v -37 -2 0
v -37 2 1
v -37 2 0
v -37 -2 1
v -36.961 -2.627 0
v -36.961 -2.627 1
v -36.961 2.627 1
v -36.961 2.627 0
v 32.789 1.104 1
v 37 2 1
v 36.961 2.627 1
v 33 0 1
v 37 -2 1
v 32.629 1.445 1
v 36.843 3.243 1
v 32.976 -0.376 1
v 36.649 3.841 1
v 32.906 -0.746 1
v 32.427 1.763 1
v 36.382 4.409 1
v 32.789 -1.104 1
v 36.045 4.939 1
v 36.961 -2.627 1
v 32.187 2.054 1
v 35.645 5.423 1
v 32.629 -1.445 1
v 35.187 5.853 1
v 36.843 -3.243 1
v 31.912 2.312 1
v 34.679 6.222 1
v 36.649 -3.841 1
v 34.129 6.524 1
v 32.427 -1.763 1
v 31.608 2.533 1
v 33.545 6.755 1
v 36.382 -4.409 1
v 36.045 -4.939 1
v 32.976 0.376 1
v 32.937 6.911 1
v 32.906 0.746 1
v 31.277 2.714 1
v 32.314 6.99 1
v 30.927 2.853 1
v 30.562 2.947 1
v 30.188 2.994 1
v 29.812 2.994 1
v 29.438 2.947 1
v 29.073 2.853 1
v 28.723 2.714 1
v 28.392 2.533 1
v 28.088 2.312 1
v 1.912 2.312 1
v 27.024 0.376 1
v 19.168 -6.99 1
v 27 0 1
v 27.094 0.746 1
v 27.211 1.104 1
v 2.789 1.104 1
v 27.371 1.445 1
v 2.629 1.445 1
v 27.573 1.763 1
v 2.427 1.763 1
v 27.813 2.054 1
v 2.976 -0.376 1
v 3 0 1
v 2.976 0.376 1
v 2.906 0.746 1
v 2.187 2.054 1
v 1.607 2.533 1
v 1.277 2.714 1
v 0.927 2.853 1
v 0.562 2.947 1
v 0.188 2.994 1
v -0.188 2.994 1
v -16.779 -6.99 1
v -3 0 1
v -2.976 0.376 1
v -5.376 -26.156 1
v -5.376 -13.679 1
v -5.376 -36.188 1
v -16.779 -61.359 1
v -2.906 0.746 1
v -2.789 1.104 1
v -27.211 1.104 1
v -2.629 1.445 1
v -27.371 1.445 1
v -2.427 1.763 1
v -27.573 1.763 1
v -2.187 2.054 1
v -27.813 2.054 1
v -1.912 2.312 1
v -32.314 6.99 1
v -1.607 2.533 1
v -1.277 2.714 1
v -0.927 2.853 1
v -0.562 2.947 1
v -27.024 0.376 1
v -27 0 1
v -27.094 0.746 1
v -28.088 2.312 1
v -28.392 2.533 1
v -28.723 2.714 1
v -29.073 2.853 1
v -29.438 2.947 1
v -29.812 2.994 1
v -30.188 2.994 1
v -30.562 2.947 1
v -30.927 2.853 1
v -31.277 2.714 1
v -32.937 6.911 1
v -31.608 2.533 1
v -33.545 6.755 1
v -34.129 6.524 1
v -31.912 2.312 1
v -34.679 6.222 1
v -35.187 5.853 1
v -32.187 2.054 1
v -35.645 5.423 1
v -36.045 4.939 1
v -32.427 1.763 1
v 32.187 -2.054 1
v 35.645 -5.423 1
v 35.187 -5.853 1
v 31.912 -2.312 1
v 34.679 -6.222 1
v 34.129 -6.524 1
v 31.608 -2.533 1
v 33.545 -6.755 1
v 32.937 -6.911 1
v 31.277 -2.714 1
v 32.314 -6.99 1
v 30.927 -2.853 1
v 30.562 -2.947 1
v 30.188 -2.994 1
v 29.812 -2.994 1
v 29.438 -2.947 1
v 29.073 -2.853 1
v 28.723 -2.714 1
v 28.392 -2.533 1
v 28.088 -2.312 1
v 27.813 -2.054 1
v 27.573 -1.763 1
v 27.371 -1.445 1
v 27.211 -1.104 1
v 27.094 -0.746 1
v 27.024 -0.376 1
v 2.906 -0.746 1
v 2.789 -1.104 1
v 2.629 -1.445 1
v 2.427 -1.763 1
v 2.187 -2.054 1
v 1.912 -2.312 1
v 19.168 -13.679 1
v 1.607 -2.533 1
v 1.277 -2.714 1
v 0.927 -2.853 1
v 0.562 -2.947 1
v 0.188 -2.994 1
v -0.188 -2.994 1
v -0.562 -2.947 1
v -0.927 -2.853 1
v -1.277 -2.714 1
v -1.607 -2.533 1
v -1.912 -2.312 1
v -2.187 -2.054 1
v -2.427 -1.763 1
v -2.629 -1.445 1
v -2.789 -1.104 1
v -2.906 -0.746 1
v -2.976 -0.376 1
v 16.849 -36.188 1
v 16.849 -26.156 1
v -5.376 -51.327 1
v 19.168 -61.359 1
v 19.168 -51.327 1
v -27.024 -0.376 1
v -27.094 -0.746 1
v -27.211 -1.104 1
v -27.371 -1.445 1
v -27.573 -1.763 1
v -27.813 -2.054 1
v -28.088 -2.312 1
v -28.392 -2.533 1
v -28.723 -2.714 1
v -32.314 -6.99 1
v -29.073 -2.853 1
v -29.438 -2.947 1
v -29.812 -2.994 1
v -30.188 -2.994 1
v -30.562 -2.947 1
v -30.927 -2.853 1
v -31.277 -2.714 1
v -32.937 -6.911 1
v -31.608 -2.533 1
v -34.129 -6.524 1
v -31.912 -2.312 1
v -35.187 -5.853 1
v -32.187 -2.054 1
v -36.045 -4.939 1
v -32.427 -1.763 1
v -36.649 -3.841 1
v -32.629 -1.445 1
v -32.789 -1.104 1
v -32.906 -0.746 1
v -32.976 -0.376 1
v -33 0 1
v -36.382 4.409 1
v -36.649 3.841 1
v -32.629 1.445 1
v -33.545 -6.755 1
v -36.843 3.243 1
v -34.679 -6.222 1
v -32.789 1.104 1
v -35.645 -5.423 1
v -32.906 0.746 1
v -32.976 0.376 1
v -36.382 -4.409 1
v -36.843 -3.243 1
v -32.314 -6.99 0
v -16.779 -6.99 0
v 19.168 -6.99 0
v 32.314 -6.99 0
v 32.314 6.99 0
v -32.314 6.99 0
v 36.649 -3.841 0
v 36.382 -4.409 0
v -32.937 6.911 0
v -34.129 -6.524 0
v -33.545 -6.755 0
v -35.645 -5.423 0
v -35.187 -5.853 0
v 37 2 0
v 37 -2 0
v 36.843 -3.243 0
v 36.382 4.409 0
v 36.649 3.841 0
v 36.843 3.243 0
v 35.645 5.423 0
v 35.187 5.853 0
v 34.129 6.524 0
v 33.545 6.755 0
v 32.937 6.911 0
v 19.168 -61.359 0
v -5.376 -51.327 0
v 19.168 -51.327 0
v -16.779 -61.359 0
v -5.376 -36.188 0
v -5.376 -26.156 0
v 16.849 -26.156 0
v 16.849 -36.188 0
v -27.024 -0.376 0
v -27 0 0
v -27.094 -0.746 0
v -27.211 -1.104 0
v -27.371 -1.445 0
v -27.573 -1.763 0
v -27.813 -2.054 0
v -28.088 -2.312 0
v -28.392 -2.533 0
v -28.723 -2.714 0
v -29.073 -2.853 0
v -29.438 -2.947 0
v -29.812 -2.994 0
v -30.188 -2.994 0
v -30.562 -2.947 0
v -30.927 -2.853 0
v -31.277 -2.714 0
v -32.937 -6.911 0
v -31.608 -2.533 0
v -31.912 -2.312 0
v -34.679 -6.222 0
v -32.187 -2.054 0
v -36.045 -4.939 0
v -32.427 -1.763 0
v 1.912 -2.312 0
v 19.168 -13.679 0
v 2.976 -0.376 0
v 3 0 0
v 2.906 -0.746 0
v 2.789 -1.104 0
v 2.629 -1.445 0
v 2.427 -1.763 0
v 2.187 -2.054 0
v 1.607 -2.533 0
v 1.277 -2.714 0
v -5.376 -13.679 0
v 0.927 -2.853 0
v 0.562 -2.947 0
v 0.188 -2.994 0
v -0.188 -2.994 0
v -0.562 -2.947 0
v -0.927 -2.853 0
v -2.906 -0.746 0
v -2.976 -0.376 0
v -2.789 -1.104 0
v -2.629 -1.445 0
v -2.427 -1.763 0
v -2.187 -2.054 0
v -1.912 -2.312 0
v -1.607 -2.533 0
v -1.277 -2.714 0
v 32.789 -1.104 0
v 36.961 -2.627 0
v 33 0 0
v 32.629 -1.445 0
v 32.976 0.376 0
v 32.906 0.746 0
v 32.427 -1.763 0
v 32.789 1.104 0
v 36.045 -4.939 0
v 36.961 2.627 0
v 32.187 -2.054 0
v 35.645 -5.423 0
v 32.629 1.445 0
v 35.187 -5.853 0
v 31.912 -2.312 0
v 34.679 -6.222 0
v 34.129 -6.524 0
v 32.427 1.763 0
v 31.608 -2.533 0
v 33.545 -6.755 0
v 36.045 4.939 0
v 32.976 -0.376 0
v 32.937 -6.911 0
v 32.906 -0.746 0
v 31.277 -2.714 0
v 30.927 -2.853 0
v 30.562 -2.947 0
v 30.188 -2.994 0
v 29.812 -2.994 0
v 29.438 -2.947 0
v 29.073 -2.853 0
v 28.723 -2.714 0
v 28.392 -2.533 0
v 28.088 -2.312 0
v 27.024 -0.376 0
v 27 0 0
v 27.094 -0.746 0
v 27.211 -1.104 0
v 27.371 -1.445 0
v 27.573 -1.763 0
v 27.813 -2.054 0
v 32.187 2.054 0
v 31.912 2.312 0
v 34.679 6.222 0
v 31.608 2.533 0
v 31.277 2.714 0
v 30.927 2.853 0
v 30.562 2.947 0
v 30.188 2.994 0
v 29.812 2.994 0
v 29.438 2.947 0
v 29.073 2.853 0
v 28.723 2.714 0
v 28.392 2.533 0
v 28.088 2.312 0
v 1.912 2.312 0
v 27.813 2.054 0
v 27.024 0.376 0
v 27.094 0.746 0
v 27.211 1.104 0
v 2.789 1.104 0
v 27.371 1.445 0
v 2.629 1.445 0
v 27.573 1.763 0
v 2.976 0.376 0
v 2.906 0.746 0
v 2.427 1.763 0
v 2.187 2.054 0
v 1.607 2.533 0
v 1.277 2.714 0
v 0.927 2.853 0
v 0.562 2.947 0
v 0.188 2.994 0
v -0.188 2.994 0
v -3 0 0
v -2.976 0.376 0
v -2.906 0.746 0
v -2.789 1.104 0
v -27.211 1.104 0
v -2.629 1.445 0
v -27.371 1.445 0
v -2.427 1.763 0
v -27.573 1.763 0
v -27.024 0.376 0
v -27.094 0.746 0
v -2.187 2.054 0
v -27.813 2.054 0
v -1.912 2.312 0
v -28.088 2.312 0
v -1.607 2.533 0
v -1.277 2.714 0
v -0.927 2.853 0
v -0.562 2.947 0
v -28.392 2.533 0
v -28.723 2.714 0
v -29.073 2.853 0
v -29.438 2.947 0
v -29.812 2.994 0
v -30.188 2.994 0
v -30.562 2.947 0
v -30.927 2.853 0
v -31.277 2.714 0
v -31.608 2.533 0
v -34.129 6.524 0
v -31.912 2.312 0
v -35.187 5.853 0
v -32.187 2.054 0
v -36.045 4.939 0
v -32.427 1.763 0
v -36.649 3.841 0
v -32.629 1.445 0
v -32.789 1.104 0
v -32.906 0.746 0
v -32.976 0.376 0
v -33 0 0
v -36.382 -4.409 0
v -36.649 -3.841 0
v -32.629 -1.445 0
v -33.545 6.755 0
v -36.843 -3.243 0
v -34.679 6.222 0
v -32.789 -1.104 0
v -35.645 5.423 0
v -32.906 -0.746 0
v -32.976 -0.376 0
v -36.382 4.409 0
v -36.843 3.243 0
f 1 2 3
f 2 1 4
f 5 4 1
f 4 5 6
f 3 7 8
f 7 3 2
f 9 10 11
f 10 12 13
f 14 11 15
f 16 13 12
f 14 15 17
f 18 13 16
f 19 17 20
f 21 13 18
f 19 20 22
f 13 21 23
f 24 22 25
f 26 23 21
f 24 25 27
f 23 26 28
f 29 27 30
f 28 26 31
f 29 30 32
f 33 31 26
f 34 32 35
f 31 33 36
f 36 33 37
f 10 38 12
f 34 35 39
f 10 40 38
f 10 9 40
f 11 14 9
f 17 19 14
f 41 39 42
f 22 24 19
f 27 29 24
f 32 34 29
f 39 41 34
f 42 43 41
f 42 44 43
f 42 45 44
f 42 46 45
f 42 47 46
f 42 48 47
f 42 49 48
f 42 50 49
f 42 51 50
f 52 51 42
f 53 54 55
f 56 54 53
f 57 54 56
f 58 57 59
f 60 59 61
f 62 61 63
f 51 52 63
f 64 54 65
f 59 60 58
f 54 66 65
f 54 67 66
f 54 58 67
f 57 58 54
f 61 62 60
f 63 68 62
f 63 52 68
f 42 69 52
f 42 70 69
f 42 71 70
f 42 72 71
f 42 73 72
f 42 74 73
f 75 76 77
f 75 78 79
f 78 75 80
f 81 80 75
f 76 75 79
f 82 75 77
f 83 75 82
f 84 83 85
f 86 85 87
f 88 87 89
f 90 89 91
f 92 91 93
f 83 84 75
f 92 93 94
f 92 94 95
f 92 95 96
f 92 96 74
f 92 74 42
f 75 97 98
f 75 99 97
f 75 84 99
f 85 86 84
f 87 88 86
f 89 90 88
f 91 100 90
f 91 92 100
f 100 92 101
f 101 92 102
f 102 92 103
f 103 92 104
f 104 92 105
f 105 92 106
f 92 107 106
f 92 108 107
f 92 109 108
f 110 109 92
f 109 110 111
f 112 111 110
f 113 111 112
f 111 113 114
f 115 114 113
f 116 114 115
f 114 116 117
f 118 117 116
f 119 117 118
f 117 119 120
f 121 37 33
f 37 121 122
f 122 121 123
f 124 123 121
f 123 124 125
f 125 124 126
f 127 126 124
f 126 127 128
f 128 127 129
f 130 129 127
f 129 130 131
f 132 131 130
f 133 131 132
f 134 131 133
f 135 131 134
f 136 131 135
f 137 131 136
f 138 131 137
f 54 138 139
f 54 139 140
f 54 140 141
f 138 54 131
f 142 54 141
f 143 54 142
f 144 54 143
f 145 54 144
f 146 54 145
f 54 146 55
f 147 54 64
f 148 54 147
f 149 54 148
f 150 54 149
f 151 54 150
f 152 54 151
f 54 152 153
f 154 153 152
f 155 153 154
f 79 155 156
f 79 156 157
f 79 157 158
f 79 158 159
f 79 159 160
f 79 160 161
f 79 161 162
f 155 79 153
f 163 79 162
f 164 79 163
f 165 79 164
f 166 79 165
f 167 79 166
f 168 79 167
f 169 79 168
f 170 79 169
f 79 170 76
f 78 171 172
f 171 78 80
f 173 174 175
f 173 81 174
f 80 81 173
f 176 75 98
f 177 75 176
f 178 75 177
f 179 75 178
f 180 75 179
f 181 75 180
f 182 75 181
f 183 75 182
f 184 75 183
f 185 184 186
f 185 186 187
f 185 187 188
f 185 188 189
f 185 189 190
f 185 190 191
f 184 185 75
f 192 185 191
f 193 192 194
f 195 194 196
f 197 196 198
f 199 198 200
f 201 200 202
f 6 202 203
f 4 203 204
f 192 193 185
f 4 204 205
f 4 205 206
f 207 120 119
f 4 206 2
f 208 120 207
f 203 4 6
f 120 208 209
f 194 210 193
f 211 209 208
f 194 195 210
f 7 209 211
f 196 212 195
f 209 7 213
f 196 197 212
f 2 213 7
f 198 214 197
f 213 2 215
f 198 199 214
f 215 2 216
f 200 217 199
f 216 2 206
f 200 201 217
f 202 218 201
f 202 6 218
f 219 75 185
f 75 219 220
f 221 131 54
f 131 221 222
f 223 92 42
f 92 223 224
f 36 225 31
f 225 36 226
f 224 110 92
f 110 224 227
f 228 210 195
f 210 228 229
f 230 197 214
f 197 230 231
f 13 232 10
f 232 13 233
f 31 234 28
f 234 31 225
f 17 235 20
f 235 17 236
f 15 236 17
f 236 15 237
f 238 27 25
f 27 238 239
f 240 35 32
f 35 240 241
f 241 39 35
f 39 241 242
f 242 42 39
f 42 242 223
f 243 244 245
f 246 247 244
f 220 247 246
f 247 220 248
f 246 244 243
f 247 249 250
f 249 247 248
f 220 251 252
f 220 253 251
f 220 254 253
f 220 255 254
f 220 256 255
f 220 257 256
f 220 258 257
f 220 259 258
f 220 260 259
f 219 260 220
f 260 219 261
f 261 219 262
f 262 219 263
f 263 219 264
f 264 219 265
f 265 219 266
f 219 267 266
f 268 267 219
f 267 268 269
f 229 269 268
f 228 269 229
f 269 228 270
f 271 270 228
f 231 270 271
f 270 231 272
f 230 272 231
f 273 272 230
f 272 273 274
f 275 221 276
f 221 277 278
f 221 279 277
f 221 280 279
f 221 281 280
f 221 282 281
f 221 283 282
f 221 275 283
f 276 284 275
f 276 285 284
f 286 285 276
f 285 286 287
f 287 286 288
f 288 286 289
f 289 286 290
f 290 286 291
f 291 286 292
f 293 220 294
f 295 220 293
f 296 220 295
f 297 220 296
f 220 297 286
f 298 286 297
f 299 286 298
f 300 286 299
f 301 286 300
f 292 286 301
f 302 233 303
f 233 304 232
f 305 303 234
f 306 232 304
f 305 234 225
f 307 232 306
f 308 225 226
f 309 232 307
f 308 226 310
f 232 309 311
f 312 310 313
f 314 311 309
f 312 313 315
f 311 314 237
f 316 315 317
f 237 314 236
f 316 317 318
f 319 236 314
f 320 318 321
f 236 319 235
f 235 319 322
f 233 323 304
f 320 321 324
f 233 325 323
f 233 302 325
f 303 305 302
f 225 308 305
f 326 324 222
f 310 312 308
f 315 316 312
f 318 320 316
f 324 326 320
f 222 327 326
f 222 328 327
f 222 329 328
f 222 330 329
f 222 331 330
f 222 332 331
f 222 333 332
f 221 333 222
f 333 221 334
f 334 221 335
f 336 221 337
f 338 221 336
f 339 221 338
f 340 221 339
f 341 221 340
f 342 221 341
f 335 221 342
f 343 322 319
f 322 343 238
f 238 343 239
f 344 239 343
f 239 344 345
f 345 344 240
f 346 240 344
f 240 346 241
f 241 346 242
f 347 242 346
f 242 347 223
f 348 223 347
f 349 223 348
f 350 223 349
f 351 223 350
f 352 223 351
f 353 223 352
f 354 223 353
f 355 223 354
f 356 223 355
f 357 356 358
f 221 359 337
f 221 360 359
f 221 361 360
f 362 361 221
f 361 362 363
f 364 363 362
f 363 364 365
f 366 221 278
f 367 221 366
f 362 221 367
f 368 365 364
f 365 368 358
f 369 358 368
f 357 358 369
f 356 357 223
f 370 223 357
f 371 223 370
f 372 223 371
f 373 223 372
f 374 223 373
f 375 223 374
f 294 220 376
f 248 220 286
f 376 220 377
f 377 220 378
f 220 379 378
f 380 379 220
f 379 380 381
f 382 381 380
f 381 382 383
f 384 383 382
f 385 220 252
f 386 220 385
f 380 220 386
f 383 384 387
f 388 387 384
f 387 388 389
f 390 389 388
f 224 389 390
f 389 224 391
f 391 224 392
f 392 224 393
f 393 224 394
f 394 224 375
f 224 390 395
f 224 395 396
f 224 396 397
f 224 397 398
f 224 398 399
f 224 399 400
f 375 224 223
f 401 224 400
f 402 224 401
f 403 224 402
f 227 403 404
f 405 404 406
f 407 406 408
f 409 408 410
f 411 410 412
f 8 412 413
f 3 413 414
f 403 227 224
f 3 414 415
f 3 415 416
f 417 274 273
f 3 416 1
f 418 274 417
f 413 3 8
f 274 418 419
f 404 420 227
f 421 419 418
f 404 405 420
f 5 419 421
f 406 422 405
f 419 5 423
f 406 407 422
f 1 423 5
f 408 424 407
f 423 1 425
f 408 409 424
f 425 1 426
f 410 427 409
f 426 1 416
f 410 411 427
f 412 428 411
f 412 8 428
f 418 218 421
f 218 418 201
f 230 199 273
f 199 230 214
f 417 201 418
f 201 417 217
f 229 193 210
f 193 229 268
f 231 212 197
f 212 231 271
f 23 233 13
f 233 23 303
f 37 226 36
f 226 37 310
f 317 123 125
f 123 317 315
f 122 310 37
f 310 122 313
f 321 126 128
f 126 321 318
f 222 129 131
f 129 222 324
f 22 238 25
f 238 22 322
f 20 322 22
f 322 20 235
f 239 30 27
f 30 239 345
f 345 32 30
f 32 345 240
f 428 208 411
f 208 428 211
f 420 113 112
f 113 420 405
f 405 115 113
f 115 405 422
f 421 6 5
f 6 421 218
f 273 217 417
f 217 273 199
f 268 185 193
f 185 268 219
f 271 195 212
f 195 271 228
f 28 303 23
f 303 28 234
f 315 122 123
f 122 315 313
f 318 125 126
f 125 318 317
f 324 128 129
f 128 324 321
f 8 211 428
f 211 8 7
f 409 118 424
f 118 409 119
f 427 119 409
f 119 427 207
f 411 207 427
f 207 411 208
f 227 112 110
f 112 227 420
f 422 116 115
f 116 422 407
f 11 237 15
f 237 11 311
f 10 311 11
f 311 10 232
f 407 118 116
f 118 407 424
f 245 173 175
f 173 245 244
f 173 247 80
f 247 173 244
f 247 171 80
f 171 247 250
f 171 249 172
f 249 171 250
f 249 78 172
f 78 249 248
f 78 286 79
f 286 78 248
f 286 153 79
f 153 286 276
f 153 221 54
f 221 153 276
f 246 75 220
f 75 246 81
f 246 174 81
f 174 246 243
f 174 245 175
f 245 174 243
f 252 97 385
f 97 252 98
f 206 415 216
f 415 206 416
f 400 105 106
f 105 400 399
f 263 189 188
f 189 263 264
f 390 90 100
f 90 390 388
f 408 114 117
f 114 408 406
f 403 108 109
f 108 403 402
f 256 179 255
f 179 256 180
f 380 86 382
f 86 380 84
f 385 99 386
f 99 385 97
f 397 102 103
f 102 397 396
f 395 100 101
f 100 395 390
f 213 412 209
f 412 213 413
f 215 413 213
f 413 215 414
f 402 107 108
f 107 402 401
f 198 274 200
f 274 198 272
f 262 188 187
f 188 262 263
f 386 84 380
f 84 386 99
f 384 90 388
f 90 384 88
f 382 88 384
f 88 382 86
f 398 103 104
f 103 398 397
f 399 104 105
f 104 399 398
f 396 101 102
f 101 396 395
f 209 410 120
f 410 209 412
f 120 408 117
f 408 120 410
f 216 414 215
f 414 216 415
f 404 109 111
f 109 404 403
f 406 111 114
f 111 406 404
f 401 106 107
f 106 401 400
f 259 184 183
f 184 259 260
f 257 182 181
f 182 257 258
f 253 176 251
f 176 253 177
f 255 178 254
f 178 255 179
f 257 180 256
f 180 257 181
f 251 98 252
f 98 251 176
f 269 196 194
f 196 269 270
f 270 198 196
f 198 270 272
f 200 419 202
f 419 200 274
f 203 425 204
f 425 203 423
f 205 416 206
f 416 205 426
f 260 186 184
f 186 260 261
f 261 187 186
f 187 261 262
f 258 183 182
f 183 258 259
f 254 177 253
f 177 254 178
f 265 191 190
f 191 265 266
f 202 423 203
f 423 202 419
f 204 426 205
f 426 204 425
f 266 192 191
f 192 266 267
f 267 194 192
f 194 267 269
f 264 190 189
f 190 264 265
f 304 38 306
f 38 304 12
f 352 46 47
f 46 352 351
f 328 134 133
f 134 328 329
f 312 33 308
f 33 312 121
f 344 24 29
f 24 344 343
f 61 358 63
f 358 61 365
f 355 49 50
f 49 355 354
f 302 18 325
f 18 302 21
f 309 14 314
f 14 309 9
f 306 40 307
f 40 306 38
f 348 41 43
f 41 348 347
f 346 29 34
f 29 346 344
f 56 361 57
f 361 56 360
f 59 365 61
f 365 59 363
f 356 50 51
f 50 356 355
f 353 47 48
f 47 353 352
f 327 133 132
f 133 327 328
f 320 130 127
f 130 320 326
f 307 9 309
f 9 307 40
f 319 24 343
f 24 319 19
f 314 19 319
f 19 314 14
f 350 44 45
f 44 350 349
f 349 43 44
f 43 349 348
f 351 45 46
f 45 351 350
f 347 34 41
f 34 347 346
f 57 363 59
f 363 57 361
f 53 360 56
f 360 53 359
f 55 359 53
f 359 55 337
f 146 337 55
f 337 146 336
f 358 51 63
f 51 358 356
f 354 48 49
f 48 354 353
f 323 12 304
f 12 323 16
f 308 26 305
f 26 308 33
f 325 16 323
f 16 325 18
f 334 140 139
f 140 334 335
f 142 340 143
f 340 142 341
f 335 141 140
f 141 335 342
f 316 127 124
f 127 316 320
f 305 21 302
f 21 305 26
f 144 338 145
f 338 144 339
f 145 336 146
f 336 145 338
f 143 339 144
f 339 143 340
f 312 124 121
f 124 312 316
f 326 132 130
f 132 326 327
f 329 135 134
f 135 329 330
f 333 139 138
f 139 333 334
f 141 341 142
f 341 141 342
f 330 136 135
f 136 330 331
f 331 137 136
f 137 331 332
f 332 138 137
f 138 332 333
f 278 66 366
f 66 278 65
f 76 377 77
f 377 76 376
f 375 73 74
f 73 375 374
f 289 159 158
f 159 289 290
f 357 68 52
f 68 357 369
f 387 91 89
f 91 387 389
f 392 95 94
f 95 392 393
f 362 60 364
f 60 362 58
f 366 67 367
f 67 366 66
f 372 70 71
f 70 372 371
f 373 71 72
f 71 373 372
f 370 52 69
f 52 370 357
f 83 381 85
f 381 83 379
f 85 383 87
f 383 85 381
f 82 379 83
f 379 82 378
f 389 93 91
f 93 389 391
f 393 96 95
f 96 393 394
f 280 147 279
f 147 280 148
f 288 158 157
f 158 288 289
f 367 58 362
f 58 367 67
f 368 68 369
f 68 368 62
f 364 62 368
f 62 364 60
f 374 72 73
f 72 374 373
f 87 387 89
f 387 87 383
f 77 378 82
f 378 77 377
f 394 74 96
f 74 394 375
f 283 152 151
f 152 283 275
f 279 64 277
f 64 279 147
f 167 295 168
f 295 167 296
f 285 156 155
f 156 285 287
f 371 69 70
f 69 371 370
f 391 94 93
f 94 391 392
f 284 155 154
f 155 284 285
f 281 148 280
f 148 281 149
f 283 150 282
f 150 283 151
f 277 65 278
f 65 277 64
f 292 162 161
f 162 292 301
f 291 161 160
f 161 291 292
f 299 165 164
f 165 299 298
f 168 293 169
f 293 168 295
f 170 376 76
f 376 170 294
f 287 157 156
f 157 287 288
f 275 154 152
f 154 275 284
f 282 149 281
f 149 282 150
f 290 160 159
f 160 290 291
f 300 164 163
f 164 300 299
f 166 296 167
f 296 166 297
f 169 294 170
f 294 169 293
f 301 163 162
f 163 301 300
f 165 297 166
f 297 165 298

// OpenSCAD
$fn = 50;


difference() {
	union() {
		translate(v = [0, 0, 0]) {
			rotate(a = [0, 0, 0]) {
				hull() {
					translate(v = [-32.0000000000, 2.0000000000, 0]) {
						rotate(a = [0, 0, 0]) {
							translate(v = [0, 0, 0]) {
								rotate(a = [0, 0, 0]) {
									cylinder(h = 1, r = 5);
								}
							}
						}
					}
					translate(v = [32.0000000000, 2.0000000000, 0]) {
						rotate(a = [0, 0, 0]) {
							translate(v = [0, 0, 0]) {
								rotate(a = [0, 0, 0]) {
									cylinder(h = 1, r = 5);
								}
							}
						}
					}
					translate(v = [-32.0000000000, -2.0000000000, 0]) {
						rotate(a = [0, 0, 0]) {
							translate(v = [0, 0, 0]) {
								rotate(a = [0, 0, 0]) {
									cylinder(h = 1, r = 5);
								}
							}
						}
					}
					translate(v = [32.0000000000, -2.0000000000, 0]) {
						rotate(a = [0, 0, 0]) {
							translate(v = [0, 0, 0]) {
								rotate(a = [0, 0, 0]) {
									cylinder(h = 1, r = 5);
								}
							}
						}
					}
				}
			}
		}
		translate(v = [0, -5, 0]) {
			rotate(a = [0, 0, 0]) {
				linear_extrude(height = 1) {
					text(font = "DejaVu Sans Mono:style=Bold", halign = "center", size = 57.0000000000, text = "E", valign = "top");
				}
			}
		}
	}
	union() {
		translate(v = [-30.0000000000, 0.0000000000, -125.0000000000]) {
			rotate(a = [0, 0, 0]) {
				cylinder(h = 250, r = 3.0000000000);
			}
		}
		translate(v = [30.0000000000, 0.0000000000, -125.0000000000]) {
			rotate(a = [0, 0, 0]) {
				cylinder(h = 250, r = 3.0000000000);
			}
		}
		translate(v = [30.0000000000, 0.0000000000, -125.0000000000]) {
			rotate(a = [0, 0, 0]) {
				cylinder(h = 250, r = 3.0000000000);
			}
		}
		translate(v = [0, 0, -125.0000000000]) {
			rotate(a = [0, 0, 0]) {
				cylinder(h = 250, r = 3.0000000000);
			}
		}
	}
}
